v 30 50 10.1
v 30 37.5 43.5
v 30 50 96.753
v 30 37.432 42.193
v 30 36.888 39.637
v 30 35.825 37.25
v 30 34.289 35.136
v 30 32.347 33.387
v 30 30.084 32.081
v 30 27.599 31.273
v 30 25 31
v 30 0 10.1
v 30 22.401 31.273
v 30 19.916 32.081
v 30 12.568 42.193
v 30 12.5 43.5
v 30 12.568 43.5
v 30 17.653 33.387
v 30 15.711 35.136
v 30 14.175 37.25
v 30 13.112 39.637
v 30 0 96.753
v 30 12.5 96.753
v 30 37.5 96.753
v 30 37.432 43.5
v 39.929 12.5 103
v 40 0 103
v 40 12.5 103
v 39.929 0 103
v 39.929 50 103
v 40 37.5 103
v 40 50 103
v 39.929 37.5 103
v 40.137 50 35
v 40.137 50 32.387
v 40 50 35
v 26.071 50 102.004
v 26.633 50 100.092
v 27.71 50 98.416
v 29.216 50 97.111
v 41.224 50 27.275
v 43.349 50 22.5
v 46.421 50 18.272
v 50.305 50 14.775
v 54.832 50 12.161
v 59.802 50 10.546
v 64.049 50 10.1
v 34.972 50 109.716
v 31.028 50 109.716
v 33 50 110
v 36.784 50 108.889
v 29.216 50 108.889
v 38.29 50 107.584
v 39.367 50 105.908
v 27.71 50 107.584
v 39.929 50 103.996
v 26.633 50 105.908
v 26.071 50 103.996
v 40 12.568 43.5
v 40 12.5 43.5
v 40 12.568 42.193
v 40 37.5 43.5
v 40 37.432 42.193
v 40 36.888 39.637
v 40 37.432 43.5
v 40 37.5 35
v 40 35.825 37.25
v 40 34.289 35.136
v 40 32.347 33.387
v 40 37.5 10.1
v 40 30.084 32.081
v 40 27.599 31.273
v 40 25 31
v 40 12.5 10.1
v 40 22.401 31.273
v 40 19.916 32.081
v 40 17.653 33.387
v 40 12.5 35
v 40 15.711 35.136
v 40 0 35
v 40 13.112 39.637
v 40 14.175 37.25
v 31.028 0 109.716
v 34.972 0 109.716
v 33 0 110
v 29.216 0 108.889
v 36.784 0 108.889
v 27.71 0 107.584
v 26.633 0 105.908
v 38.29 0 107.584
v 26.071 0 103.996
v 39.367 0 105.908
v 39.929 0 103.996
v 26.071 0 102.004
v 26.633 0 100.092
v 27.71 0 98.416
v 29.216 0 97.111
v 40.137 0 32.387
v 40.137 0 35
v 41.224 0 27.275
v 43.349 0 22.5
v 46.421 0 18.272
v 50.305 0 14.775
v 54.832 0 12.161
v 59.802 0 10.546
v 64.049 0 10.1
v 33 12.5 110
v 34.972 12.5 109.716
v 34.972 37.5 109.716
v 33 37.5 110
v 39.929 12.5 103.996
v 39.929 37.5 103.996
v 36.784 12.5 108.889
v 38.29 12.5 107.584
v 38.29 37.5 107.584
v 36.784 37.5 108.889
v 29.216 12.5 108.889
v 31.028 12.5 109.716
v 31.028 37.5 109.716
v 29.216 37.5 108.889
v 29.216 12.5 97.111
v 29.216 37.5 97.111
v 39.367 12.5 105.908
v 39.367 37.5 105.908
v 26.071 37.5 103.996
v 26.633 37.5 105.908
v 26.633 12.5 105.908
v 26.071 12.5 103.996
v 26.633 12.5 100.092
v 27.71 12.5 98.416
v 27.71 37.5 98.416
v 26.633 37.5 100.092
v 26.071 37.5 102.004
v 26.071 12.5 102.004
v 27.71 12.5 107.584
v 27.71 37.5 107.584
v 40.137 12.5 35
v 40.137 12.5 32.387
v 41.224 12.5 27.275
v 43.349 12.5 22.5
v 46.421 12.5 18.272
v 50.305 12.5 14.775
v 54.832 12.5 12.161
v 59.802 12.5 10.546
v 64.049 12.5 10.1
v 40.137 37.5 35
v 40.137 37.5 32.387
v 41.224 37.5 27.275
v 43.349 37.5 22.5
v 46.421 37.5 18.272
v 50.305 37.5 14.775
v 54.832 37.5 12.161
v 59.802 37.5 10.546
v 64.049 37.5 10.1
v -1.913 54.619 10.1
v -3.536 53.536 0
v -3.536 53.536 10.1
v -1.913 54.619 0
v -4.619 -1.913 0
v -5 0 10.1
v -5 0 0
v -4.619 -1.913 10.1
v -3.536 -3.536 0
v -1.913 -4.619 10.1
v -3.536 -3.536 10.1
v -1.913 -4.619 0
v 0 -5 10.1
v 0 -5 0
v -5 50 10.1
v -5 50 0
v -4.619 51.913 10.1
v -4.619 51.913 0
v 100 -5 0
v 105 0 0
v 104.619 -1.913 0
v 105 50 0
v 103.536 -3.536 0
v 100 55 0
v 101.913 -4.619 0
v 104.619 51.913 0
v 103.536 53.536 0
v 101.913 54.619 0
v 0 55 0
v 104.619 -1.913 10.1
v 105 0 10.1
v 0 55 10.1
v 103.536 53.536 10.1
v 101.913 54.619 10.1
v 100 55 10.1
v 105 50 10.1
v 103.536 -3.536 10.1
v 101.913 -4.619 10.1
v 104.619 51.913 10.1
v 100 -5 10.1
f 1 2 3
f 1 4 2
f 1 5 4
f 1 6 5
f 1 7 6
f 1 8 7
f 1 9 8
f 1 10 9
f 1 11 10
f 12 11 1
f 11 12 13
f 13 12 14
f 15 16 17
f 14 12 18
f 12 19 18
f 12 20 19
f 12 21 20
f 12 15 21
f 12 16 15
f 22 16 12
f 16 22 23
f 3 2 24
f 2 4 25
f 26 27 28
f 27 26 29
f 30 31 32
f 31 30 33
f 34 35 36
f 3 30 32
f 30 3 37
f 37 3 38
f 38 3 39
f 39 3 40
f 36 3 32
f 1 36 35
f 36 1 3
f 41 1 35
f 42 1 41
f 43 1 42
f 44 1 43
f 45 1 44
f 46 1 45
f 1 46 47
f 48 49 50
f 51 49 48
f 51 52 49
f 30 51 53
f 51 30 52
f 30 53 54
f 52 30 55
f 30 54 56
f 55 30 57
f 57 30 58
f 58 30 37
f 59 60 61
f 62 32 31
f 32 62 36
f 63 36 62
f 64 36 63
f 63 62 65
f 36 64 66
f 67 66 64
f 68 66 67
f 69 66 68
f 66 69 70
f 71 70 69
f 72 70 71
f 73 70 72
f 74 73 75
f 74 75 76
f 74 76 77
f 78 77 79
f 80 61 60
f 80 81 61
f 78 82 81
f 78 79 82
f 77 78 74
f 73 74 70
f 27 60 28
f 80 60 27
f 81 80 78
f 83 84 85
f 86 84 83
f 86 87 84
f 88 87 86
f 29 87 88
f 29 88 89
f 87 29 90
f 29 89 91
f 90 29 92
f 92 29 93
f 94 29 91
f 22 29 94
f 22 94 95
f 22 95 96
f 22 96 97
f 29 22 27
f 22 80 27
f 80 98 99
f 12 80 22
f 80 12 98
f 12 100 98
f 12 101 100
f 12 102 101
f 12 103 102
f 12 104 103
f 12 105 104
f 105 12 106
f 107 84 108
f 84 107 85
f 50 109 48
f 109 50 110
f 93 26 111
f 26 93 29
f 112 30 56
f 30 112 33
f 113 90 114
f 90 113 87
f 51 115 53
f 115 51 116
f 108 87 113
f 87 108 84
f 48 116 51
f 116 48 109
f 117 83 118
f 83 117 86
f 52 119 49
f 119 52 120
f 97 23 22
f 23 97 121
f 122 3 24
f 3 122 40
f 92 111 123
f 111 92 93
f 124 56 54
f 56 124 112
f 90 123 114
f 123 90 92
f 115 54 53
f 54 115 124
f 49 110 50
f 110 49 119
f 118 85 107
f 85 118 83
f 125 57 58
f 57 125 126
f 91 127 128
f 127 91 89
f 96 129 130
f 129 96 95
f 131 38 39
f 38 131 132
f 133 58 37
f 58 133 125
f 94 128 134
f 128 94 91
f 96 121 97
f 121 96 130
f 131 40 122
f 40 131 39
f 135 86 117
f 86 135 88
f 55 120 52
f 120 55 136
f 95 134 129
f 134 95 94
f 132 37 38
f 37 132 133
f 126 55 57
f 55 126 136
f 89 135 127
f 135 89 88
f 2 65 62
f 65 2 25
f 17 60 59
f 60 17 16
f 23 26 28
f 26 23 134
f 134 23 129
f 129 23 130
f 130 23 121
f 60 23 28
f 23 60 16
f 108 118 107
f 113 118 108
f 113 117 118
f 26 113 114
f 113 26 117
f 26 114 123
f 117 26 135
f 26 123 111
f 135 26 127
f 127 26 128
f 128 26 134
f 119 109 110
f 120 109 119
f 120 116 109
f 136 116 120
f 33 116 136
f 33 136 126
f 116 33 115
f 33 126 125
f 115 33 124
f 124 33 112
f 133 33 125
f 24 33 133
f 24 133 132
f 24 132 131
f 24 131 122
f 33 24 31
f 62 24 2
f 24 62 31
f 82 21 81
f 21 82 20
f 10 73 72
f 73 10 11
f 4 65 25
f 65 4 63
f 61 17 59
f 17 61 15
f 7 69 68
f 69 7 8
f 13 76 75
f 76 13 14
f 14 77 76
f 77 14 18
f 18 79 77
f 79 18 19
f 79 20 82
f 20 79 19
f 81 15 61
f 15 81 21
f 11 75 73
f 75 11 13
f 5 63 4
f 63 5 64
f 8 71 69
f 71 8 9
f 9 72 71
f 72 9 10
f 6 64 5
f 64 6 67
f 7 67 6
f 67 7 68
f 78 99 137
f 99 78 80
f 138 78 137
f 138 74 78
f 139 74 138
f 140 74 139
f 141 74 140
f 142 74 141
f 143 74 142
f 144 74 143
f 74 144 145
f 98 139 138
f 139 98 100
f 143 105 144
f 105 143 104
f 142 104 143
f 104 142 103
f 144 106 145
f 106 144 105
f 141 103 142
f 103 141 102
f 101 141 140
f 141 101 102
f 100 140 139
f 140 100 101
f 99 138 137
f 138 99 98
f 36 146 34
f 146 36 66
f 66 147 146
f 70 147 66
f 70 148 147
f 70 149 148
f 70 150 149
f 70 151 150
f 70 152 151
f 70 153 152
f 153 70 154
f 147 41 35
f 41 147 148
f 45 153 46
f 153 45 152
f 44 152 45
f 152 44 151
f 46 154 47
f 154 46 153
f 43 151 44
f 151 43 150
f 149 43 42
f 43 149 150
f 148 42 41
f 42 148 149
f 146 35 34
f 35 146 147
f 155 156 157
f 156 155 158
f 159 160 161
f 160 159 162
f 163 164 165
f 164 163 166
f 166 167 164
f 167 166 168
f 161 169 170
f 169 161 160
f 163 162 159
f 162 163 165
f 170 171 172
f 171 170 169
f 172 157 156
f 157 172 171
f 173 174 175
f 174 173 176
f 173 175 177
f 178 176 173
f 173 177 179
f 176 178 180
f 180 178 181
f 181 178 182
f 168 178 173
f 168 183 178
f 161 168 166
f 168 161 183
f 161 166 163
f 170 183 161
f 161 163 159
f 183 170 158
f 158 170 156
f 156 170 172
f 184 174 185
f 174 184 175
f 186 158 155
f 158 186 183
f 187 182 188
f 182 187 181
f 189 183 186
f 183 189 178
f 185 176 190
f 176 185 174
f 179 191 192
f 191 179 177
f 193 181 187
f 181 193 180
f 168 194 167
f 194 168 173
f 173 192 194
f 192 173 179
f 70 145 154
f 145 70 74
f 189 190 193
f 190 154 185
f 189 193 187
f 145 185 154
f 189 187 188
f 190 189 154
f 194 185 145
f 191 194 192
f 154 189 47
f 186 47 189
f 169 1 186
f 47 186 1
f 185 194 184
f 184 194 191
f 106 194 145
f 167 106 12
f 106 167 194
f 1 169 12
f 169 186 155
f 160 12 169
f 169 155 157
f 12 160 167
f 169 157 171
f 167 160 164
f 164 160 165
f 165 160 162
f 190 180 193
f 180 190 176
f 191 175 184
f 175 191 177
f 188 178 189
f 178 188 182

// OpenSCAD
hook_x = 100;
hook_y = 50;
hook_z = 100;
hook_shelf_z = 70;
hook_hole_diam = 25;
hook_hole_depth = 80;


translate([hook_x, 0, 0])
rotate([0, -90, 0])
wall_hook(hook_x, hook_y, hook_z, hook_shelf_z, hook_hole_diam, hook_hole_depth);


module wall_hook(x, y, z, shelf_z, hole_diam, hole_depth) {
  arm_thickness = 10;
  back_thickness = 10;
  translate([back_thickness, 0, shelf_z-arm_thickness]) fork(x, y, arm_thickness, hole_diam, hole_depth);
  
  minkowski() {
    rotate([0, 90, 0]) cylinder(r=5, h=0.1);
    cube([arm_thickness, y, x]);
  }
}

module fork (x, y, z, fork_width, fork_depth) {
  difference() {
    arm(x, y, z);
    translate([x+1, (y/2 + fork_width/2), -1]) rotate([0, 0, 180]) hole(fork_depth, fork_width, z*2+2);
  }

  support_y = (y-fork_width)/2;
  support_x = x/2;

  mirror([0, 0, 1]) support(support_x, support_y);
  translate([0, y-support_y, 0]) mirror([0, 0, 1]) support(support_x, support_y);
}

module support(x, y) {
  difference() {
    cube([x/2, y, x/2]);
    translate([x/2, -1, x/2]) rotate([-90, 0, 0]) cylinder(r=x/2, h=y+2);
  }
}

module arm (length, width, thickness) {
  knob_radius = thickness * 0.7;

  cube([length-knob_radius, width, thickness]);
  translate([length-knob_radius, 0, knob_radius]) rotate([-90, 0, 0]) cylinder(h=width, r=knob_radius);
}

module hole (x, y, z) {
  hole_radius = y/2;

  hole_center_x = x-hole_radius;

  cube([hole_center_x, y, z]);
  translate([hole_center_x, hole_radius, 0]) cylinder(r=hole_radius, h=z);
}
